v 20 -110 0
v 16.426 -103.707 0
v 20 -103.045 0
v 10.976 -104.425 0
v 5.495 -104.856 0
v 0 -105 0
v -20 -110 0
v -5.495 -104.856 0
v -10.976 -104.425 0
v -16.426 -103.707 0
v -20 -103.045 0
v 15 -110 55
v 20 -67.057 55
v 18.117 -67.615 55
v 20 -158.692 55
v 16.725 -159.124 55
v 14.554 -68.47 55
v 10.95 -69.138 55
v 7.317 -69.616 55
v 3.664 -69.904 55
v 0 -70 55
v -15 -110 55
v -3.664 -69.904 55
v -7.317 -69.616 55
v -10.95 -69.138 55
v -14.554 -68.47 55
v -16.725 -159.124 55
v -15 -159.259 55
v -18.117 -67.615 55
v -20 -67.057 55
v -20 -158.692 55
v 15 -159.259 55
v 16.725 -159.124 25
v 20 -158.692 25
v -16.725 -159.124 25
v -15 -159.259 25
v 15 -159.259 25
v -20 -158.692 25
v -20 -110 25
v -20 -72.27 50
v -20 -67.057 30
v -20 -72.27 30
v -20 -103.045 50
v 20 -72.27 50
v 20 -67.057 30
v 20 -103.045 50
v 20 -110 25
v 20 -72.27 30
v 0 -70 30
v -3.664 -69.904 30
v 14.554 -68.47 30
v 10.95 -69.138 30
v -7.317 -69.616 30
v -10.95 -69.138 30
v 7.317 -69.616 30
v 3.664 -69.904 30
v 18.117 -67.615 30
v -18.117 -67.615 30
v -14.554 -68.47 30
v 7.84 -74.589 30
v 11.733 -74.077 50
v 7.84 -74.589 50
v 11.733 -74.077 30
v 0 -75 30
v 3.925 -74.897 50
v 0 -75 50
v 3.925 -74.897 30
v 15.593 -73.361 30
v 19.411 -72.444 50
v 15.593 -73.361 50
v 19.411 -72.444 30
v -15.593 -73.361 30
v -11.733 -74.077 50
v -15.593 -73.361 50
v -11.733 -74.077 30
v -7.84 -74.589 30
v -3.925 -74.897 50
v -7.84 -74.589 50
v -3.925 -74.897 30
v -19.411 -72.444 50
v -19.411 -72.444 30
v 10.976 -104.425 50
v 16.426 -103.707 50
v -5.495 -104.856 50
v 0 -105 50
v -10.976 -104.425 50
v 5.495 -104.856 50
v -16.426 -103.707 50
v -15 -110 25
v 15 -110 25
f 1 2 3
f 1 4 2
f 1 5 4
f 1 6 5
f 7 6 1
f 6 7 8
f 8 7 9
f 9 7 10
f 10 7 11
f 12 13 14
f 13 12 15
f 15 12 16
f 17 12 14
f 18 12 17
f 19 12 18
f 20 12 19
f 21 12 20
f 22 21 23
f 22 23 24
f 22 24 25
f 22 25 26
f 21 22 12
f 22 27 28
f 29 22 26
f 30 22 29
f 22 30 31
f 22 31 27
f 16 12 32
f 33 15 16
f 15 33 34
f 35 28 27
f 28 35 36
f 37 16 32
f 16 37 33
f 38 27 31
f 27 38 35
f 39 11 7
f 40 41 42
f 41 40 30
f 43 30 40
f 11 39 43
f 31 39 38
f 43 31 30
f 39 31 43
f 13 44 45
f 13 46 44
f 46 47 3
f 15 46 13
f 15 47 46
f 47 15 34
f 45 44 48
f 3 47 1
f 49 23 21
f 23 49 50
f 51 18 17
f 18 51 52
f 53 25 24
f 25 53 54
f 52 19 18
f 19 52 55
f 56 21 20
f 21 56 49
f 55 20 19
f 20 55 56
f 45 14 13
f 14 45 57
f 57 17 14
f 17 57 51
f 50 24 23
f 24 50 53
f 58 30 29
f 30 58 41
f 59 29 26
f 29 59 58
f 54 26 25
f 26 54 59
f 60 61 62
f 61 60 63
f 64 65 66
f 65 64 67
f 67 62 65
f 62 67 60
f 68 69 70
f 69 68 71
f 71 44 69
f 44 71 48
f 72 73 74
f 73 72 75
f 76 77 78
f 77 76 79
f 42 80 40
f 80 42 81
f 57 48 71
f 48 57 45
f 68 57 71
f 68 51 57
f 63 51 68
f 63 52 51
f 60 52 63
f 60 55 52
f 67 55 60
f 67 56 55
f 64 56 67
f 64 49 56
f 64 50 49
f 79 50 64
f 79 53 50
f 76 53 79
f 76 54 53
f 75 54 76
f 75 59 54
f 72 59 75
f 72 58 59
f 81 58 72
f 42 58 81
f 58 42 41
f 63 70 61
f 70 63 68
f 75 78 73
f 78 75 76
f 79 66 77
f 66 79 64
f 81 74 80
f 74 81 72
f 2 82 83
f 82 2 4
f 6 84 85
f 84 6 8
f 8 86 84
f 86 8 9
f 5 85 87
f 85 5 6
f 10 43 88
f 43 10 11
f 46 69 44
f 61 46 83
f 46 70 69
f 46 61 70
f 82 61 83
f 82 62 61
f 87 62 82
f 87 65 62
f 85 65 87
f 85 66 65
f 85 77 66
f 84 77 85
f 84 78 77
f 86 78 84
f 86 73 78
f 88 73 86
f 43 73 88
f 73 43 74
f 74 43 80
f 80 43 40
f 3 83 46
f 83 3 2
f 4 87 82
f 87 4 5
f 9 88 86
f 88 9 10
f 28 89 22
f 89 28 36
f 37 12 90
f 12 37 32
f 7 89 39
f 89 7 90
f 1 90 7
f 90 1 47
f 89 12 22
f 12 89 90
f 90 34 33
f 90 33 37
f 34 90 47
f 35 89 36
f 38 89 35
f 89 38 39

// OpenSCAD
difference() {
	difference() {
		difference() {
			difference() {
				difference() {
					intersection() {
						cylinder($fn = 120, h = 55, r = 160);
						translate(v = [-20, 0, 0]) {
							translate(v = [0, -160, 0]) {
								cube(size = [40, 160, 55]);
							}
						}
					}
					cylinder($fn = 120, h = 55, r = 70);
				}
				translate(v = [-160, 0, 0]) {
					cube(size = [320, 160, 55]);
				}
			}
			translate(v = [0, 0, -25]) {
				cylinder($fn = 120, h = 55, r = 75);
			}
		}
		difference() {
			cylinder($fn = 120, h = 50, r = 105);
			cylinder($fn = 120, h = 50, r = 75);
		}
	}
	union() {
		translate(v = [-15, 0, 0]) {
			translate(v = [0, -160, 0]) {
				cube(size = [30, 50, 55]);
			}
		}
		translate(v = [-20, 0, 0]) {
			translate(v = [0, -160, 0]) {
				cube(size = [40, 50, 25]);
			}
		}
	}
}
/***********************************************
*********      SolidPython code:      **********
************************************************
 
import solid as s
import solid.utils as u

slot_width = 30
slot_length = 50
slot_depth = 30
top_depth = 5
fin_width = 5
fin_depth = 20
keg_inner_rad = 75
keg_outer_rad = 105
lip_inner_depth = 20
lip_outer_depth = 50
lip_width = 5
segments = 120

top_outer_rad = keg_outer_rad + lip_width + slot_length
top_inner_rad = keg_inner_rad - lip_width
body_width = slot_width + fin_width * 2
body_depth = top_depth + lip_outer_depth
keg_depth = body_depth - top_depth

body = s.cylinder(r=top_outer_rad, h=body_depth, segments=segments)
body *= u.left(body_width / 2)(u.back(top_outer_rad)(
    s.cube(size=(body_width, top_outer_rad, body_depth))
))
body -= s.cylinder(r=top_inner_rad, h=body_depth, segments=segments)
body -= u.left(top_outer_rad)(
    s.cube(size=(top_outer_rad*2, top_outer_rad, body_depth))
)
body -= u.down(top_depth + lip_inner_depth)(
    s.cylinder(r=keg_inner_rad, h=body_depth, segments=segments)
)

keg_slot = s.cylinder(r=keg_outer_rad, h=keg_depth, segments=segments)
keg_slot -= s.cylinder(r=keg_inner_rad, h=keg_depth, segments=segments)
body -= keg_slot

slot = u.left(slot_width / 2)(u.back(top_outer_rad)(
    s.cube(size=(slot_width, slot_length, body_depth))
))
slot += u.left(body_width / 2)(u.back(top_outer_rad)(
    s.cube(size=(body_width, slot_length, body_depth - slot_depth))
))

body -= slot

final = body

s.scad_render_to_file(final, __file__.replace('.py', '.scad'))
 
 
************************************************/
